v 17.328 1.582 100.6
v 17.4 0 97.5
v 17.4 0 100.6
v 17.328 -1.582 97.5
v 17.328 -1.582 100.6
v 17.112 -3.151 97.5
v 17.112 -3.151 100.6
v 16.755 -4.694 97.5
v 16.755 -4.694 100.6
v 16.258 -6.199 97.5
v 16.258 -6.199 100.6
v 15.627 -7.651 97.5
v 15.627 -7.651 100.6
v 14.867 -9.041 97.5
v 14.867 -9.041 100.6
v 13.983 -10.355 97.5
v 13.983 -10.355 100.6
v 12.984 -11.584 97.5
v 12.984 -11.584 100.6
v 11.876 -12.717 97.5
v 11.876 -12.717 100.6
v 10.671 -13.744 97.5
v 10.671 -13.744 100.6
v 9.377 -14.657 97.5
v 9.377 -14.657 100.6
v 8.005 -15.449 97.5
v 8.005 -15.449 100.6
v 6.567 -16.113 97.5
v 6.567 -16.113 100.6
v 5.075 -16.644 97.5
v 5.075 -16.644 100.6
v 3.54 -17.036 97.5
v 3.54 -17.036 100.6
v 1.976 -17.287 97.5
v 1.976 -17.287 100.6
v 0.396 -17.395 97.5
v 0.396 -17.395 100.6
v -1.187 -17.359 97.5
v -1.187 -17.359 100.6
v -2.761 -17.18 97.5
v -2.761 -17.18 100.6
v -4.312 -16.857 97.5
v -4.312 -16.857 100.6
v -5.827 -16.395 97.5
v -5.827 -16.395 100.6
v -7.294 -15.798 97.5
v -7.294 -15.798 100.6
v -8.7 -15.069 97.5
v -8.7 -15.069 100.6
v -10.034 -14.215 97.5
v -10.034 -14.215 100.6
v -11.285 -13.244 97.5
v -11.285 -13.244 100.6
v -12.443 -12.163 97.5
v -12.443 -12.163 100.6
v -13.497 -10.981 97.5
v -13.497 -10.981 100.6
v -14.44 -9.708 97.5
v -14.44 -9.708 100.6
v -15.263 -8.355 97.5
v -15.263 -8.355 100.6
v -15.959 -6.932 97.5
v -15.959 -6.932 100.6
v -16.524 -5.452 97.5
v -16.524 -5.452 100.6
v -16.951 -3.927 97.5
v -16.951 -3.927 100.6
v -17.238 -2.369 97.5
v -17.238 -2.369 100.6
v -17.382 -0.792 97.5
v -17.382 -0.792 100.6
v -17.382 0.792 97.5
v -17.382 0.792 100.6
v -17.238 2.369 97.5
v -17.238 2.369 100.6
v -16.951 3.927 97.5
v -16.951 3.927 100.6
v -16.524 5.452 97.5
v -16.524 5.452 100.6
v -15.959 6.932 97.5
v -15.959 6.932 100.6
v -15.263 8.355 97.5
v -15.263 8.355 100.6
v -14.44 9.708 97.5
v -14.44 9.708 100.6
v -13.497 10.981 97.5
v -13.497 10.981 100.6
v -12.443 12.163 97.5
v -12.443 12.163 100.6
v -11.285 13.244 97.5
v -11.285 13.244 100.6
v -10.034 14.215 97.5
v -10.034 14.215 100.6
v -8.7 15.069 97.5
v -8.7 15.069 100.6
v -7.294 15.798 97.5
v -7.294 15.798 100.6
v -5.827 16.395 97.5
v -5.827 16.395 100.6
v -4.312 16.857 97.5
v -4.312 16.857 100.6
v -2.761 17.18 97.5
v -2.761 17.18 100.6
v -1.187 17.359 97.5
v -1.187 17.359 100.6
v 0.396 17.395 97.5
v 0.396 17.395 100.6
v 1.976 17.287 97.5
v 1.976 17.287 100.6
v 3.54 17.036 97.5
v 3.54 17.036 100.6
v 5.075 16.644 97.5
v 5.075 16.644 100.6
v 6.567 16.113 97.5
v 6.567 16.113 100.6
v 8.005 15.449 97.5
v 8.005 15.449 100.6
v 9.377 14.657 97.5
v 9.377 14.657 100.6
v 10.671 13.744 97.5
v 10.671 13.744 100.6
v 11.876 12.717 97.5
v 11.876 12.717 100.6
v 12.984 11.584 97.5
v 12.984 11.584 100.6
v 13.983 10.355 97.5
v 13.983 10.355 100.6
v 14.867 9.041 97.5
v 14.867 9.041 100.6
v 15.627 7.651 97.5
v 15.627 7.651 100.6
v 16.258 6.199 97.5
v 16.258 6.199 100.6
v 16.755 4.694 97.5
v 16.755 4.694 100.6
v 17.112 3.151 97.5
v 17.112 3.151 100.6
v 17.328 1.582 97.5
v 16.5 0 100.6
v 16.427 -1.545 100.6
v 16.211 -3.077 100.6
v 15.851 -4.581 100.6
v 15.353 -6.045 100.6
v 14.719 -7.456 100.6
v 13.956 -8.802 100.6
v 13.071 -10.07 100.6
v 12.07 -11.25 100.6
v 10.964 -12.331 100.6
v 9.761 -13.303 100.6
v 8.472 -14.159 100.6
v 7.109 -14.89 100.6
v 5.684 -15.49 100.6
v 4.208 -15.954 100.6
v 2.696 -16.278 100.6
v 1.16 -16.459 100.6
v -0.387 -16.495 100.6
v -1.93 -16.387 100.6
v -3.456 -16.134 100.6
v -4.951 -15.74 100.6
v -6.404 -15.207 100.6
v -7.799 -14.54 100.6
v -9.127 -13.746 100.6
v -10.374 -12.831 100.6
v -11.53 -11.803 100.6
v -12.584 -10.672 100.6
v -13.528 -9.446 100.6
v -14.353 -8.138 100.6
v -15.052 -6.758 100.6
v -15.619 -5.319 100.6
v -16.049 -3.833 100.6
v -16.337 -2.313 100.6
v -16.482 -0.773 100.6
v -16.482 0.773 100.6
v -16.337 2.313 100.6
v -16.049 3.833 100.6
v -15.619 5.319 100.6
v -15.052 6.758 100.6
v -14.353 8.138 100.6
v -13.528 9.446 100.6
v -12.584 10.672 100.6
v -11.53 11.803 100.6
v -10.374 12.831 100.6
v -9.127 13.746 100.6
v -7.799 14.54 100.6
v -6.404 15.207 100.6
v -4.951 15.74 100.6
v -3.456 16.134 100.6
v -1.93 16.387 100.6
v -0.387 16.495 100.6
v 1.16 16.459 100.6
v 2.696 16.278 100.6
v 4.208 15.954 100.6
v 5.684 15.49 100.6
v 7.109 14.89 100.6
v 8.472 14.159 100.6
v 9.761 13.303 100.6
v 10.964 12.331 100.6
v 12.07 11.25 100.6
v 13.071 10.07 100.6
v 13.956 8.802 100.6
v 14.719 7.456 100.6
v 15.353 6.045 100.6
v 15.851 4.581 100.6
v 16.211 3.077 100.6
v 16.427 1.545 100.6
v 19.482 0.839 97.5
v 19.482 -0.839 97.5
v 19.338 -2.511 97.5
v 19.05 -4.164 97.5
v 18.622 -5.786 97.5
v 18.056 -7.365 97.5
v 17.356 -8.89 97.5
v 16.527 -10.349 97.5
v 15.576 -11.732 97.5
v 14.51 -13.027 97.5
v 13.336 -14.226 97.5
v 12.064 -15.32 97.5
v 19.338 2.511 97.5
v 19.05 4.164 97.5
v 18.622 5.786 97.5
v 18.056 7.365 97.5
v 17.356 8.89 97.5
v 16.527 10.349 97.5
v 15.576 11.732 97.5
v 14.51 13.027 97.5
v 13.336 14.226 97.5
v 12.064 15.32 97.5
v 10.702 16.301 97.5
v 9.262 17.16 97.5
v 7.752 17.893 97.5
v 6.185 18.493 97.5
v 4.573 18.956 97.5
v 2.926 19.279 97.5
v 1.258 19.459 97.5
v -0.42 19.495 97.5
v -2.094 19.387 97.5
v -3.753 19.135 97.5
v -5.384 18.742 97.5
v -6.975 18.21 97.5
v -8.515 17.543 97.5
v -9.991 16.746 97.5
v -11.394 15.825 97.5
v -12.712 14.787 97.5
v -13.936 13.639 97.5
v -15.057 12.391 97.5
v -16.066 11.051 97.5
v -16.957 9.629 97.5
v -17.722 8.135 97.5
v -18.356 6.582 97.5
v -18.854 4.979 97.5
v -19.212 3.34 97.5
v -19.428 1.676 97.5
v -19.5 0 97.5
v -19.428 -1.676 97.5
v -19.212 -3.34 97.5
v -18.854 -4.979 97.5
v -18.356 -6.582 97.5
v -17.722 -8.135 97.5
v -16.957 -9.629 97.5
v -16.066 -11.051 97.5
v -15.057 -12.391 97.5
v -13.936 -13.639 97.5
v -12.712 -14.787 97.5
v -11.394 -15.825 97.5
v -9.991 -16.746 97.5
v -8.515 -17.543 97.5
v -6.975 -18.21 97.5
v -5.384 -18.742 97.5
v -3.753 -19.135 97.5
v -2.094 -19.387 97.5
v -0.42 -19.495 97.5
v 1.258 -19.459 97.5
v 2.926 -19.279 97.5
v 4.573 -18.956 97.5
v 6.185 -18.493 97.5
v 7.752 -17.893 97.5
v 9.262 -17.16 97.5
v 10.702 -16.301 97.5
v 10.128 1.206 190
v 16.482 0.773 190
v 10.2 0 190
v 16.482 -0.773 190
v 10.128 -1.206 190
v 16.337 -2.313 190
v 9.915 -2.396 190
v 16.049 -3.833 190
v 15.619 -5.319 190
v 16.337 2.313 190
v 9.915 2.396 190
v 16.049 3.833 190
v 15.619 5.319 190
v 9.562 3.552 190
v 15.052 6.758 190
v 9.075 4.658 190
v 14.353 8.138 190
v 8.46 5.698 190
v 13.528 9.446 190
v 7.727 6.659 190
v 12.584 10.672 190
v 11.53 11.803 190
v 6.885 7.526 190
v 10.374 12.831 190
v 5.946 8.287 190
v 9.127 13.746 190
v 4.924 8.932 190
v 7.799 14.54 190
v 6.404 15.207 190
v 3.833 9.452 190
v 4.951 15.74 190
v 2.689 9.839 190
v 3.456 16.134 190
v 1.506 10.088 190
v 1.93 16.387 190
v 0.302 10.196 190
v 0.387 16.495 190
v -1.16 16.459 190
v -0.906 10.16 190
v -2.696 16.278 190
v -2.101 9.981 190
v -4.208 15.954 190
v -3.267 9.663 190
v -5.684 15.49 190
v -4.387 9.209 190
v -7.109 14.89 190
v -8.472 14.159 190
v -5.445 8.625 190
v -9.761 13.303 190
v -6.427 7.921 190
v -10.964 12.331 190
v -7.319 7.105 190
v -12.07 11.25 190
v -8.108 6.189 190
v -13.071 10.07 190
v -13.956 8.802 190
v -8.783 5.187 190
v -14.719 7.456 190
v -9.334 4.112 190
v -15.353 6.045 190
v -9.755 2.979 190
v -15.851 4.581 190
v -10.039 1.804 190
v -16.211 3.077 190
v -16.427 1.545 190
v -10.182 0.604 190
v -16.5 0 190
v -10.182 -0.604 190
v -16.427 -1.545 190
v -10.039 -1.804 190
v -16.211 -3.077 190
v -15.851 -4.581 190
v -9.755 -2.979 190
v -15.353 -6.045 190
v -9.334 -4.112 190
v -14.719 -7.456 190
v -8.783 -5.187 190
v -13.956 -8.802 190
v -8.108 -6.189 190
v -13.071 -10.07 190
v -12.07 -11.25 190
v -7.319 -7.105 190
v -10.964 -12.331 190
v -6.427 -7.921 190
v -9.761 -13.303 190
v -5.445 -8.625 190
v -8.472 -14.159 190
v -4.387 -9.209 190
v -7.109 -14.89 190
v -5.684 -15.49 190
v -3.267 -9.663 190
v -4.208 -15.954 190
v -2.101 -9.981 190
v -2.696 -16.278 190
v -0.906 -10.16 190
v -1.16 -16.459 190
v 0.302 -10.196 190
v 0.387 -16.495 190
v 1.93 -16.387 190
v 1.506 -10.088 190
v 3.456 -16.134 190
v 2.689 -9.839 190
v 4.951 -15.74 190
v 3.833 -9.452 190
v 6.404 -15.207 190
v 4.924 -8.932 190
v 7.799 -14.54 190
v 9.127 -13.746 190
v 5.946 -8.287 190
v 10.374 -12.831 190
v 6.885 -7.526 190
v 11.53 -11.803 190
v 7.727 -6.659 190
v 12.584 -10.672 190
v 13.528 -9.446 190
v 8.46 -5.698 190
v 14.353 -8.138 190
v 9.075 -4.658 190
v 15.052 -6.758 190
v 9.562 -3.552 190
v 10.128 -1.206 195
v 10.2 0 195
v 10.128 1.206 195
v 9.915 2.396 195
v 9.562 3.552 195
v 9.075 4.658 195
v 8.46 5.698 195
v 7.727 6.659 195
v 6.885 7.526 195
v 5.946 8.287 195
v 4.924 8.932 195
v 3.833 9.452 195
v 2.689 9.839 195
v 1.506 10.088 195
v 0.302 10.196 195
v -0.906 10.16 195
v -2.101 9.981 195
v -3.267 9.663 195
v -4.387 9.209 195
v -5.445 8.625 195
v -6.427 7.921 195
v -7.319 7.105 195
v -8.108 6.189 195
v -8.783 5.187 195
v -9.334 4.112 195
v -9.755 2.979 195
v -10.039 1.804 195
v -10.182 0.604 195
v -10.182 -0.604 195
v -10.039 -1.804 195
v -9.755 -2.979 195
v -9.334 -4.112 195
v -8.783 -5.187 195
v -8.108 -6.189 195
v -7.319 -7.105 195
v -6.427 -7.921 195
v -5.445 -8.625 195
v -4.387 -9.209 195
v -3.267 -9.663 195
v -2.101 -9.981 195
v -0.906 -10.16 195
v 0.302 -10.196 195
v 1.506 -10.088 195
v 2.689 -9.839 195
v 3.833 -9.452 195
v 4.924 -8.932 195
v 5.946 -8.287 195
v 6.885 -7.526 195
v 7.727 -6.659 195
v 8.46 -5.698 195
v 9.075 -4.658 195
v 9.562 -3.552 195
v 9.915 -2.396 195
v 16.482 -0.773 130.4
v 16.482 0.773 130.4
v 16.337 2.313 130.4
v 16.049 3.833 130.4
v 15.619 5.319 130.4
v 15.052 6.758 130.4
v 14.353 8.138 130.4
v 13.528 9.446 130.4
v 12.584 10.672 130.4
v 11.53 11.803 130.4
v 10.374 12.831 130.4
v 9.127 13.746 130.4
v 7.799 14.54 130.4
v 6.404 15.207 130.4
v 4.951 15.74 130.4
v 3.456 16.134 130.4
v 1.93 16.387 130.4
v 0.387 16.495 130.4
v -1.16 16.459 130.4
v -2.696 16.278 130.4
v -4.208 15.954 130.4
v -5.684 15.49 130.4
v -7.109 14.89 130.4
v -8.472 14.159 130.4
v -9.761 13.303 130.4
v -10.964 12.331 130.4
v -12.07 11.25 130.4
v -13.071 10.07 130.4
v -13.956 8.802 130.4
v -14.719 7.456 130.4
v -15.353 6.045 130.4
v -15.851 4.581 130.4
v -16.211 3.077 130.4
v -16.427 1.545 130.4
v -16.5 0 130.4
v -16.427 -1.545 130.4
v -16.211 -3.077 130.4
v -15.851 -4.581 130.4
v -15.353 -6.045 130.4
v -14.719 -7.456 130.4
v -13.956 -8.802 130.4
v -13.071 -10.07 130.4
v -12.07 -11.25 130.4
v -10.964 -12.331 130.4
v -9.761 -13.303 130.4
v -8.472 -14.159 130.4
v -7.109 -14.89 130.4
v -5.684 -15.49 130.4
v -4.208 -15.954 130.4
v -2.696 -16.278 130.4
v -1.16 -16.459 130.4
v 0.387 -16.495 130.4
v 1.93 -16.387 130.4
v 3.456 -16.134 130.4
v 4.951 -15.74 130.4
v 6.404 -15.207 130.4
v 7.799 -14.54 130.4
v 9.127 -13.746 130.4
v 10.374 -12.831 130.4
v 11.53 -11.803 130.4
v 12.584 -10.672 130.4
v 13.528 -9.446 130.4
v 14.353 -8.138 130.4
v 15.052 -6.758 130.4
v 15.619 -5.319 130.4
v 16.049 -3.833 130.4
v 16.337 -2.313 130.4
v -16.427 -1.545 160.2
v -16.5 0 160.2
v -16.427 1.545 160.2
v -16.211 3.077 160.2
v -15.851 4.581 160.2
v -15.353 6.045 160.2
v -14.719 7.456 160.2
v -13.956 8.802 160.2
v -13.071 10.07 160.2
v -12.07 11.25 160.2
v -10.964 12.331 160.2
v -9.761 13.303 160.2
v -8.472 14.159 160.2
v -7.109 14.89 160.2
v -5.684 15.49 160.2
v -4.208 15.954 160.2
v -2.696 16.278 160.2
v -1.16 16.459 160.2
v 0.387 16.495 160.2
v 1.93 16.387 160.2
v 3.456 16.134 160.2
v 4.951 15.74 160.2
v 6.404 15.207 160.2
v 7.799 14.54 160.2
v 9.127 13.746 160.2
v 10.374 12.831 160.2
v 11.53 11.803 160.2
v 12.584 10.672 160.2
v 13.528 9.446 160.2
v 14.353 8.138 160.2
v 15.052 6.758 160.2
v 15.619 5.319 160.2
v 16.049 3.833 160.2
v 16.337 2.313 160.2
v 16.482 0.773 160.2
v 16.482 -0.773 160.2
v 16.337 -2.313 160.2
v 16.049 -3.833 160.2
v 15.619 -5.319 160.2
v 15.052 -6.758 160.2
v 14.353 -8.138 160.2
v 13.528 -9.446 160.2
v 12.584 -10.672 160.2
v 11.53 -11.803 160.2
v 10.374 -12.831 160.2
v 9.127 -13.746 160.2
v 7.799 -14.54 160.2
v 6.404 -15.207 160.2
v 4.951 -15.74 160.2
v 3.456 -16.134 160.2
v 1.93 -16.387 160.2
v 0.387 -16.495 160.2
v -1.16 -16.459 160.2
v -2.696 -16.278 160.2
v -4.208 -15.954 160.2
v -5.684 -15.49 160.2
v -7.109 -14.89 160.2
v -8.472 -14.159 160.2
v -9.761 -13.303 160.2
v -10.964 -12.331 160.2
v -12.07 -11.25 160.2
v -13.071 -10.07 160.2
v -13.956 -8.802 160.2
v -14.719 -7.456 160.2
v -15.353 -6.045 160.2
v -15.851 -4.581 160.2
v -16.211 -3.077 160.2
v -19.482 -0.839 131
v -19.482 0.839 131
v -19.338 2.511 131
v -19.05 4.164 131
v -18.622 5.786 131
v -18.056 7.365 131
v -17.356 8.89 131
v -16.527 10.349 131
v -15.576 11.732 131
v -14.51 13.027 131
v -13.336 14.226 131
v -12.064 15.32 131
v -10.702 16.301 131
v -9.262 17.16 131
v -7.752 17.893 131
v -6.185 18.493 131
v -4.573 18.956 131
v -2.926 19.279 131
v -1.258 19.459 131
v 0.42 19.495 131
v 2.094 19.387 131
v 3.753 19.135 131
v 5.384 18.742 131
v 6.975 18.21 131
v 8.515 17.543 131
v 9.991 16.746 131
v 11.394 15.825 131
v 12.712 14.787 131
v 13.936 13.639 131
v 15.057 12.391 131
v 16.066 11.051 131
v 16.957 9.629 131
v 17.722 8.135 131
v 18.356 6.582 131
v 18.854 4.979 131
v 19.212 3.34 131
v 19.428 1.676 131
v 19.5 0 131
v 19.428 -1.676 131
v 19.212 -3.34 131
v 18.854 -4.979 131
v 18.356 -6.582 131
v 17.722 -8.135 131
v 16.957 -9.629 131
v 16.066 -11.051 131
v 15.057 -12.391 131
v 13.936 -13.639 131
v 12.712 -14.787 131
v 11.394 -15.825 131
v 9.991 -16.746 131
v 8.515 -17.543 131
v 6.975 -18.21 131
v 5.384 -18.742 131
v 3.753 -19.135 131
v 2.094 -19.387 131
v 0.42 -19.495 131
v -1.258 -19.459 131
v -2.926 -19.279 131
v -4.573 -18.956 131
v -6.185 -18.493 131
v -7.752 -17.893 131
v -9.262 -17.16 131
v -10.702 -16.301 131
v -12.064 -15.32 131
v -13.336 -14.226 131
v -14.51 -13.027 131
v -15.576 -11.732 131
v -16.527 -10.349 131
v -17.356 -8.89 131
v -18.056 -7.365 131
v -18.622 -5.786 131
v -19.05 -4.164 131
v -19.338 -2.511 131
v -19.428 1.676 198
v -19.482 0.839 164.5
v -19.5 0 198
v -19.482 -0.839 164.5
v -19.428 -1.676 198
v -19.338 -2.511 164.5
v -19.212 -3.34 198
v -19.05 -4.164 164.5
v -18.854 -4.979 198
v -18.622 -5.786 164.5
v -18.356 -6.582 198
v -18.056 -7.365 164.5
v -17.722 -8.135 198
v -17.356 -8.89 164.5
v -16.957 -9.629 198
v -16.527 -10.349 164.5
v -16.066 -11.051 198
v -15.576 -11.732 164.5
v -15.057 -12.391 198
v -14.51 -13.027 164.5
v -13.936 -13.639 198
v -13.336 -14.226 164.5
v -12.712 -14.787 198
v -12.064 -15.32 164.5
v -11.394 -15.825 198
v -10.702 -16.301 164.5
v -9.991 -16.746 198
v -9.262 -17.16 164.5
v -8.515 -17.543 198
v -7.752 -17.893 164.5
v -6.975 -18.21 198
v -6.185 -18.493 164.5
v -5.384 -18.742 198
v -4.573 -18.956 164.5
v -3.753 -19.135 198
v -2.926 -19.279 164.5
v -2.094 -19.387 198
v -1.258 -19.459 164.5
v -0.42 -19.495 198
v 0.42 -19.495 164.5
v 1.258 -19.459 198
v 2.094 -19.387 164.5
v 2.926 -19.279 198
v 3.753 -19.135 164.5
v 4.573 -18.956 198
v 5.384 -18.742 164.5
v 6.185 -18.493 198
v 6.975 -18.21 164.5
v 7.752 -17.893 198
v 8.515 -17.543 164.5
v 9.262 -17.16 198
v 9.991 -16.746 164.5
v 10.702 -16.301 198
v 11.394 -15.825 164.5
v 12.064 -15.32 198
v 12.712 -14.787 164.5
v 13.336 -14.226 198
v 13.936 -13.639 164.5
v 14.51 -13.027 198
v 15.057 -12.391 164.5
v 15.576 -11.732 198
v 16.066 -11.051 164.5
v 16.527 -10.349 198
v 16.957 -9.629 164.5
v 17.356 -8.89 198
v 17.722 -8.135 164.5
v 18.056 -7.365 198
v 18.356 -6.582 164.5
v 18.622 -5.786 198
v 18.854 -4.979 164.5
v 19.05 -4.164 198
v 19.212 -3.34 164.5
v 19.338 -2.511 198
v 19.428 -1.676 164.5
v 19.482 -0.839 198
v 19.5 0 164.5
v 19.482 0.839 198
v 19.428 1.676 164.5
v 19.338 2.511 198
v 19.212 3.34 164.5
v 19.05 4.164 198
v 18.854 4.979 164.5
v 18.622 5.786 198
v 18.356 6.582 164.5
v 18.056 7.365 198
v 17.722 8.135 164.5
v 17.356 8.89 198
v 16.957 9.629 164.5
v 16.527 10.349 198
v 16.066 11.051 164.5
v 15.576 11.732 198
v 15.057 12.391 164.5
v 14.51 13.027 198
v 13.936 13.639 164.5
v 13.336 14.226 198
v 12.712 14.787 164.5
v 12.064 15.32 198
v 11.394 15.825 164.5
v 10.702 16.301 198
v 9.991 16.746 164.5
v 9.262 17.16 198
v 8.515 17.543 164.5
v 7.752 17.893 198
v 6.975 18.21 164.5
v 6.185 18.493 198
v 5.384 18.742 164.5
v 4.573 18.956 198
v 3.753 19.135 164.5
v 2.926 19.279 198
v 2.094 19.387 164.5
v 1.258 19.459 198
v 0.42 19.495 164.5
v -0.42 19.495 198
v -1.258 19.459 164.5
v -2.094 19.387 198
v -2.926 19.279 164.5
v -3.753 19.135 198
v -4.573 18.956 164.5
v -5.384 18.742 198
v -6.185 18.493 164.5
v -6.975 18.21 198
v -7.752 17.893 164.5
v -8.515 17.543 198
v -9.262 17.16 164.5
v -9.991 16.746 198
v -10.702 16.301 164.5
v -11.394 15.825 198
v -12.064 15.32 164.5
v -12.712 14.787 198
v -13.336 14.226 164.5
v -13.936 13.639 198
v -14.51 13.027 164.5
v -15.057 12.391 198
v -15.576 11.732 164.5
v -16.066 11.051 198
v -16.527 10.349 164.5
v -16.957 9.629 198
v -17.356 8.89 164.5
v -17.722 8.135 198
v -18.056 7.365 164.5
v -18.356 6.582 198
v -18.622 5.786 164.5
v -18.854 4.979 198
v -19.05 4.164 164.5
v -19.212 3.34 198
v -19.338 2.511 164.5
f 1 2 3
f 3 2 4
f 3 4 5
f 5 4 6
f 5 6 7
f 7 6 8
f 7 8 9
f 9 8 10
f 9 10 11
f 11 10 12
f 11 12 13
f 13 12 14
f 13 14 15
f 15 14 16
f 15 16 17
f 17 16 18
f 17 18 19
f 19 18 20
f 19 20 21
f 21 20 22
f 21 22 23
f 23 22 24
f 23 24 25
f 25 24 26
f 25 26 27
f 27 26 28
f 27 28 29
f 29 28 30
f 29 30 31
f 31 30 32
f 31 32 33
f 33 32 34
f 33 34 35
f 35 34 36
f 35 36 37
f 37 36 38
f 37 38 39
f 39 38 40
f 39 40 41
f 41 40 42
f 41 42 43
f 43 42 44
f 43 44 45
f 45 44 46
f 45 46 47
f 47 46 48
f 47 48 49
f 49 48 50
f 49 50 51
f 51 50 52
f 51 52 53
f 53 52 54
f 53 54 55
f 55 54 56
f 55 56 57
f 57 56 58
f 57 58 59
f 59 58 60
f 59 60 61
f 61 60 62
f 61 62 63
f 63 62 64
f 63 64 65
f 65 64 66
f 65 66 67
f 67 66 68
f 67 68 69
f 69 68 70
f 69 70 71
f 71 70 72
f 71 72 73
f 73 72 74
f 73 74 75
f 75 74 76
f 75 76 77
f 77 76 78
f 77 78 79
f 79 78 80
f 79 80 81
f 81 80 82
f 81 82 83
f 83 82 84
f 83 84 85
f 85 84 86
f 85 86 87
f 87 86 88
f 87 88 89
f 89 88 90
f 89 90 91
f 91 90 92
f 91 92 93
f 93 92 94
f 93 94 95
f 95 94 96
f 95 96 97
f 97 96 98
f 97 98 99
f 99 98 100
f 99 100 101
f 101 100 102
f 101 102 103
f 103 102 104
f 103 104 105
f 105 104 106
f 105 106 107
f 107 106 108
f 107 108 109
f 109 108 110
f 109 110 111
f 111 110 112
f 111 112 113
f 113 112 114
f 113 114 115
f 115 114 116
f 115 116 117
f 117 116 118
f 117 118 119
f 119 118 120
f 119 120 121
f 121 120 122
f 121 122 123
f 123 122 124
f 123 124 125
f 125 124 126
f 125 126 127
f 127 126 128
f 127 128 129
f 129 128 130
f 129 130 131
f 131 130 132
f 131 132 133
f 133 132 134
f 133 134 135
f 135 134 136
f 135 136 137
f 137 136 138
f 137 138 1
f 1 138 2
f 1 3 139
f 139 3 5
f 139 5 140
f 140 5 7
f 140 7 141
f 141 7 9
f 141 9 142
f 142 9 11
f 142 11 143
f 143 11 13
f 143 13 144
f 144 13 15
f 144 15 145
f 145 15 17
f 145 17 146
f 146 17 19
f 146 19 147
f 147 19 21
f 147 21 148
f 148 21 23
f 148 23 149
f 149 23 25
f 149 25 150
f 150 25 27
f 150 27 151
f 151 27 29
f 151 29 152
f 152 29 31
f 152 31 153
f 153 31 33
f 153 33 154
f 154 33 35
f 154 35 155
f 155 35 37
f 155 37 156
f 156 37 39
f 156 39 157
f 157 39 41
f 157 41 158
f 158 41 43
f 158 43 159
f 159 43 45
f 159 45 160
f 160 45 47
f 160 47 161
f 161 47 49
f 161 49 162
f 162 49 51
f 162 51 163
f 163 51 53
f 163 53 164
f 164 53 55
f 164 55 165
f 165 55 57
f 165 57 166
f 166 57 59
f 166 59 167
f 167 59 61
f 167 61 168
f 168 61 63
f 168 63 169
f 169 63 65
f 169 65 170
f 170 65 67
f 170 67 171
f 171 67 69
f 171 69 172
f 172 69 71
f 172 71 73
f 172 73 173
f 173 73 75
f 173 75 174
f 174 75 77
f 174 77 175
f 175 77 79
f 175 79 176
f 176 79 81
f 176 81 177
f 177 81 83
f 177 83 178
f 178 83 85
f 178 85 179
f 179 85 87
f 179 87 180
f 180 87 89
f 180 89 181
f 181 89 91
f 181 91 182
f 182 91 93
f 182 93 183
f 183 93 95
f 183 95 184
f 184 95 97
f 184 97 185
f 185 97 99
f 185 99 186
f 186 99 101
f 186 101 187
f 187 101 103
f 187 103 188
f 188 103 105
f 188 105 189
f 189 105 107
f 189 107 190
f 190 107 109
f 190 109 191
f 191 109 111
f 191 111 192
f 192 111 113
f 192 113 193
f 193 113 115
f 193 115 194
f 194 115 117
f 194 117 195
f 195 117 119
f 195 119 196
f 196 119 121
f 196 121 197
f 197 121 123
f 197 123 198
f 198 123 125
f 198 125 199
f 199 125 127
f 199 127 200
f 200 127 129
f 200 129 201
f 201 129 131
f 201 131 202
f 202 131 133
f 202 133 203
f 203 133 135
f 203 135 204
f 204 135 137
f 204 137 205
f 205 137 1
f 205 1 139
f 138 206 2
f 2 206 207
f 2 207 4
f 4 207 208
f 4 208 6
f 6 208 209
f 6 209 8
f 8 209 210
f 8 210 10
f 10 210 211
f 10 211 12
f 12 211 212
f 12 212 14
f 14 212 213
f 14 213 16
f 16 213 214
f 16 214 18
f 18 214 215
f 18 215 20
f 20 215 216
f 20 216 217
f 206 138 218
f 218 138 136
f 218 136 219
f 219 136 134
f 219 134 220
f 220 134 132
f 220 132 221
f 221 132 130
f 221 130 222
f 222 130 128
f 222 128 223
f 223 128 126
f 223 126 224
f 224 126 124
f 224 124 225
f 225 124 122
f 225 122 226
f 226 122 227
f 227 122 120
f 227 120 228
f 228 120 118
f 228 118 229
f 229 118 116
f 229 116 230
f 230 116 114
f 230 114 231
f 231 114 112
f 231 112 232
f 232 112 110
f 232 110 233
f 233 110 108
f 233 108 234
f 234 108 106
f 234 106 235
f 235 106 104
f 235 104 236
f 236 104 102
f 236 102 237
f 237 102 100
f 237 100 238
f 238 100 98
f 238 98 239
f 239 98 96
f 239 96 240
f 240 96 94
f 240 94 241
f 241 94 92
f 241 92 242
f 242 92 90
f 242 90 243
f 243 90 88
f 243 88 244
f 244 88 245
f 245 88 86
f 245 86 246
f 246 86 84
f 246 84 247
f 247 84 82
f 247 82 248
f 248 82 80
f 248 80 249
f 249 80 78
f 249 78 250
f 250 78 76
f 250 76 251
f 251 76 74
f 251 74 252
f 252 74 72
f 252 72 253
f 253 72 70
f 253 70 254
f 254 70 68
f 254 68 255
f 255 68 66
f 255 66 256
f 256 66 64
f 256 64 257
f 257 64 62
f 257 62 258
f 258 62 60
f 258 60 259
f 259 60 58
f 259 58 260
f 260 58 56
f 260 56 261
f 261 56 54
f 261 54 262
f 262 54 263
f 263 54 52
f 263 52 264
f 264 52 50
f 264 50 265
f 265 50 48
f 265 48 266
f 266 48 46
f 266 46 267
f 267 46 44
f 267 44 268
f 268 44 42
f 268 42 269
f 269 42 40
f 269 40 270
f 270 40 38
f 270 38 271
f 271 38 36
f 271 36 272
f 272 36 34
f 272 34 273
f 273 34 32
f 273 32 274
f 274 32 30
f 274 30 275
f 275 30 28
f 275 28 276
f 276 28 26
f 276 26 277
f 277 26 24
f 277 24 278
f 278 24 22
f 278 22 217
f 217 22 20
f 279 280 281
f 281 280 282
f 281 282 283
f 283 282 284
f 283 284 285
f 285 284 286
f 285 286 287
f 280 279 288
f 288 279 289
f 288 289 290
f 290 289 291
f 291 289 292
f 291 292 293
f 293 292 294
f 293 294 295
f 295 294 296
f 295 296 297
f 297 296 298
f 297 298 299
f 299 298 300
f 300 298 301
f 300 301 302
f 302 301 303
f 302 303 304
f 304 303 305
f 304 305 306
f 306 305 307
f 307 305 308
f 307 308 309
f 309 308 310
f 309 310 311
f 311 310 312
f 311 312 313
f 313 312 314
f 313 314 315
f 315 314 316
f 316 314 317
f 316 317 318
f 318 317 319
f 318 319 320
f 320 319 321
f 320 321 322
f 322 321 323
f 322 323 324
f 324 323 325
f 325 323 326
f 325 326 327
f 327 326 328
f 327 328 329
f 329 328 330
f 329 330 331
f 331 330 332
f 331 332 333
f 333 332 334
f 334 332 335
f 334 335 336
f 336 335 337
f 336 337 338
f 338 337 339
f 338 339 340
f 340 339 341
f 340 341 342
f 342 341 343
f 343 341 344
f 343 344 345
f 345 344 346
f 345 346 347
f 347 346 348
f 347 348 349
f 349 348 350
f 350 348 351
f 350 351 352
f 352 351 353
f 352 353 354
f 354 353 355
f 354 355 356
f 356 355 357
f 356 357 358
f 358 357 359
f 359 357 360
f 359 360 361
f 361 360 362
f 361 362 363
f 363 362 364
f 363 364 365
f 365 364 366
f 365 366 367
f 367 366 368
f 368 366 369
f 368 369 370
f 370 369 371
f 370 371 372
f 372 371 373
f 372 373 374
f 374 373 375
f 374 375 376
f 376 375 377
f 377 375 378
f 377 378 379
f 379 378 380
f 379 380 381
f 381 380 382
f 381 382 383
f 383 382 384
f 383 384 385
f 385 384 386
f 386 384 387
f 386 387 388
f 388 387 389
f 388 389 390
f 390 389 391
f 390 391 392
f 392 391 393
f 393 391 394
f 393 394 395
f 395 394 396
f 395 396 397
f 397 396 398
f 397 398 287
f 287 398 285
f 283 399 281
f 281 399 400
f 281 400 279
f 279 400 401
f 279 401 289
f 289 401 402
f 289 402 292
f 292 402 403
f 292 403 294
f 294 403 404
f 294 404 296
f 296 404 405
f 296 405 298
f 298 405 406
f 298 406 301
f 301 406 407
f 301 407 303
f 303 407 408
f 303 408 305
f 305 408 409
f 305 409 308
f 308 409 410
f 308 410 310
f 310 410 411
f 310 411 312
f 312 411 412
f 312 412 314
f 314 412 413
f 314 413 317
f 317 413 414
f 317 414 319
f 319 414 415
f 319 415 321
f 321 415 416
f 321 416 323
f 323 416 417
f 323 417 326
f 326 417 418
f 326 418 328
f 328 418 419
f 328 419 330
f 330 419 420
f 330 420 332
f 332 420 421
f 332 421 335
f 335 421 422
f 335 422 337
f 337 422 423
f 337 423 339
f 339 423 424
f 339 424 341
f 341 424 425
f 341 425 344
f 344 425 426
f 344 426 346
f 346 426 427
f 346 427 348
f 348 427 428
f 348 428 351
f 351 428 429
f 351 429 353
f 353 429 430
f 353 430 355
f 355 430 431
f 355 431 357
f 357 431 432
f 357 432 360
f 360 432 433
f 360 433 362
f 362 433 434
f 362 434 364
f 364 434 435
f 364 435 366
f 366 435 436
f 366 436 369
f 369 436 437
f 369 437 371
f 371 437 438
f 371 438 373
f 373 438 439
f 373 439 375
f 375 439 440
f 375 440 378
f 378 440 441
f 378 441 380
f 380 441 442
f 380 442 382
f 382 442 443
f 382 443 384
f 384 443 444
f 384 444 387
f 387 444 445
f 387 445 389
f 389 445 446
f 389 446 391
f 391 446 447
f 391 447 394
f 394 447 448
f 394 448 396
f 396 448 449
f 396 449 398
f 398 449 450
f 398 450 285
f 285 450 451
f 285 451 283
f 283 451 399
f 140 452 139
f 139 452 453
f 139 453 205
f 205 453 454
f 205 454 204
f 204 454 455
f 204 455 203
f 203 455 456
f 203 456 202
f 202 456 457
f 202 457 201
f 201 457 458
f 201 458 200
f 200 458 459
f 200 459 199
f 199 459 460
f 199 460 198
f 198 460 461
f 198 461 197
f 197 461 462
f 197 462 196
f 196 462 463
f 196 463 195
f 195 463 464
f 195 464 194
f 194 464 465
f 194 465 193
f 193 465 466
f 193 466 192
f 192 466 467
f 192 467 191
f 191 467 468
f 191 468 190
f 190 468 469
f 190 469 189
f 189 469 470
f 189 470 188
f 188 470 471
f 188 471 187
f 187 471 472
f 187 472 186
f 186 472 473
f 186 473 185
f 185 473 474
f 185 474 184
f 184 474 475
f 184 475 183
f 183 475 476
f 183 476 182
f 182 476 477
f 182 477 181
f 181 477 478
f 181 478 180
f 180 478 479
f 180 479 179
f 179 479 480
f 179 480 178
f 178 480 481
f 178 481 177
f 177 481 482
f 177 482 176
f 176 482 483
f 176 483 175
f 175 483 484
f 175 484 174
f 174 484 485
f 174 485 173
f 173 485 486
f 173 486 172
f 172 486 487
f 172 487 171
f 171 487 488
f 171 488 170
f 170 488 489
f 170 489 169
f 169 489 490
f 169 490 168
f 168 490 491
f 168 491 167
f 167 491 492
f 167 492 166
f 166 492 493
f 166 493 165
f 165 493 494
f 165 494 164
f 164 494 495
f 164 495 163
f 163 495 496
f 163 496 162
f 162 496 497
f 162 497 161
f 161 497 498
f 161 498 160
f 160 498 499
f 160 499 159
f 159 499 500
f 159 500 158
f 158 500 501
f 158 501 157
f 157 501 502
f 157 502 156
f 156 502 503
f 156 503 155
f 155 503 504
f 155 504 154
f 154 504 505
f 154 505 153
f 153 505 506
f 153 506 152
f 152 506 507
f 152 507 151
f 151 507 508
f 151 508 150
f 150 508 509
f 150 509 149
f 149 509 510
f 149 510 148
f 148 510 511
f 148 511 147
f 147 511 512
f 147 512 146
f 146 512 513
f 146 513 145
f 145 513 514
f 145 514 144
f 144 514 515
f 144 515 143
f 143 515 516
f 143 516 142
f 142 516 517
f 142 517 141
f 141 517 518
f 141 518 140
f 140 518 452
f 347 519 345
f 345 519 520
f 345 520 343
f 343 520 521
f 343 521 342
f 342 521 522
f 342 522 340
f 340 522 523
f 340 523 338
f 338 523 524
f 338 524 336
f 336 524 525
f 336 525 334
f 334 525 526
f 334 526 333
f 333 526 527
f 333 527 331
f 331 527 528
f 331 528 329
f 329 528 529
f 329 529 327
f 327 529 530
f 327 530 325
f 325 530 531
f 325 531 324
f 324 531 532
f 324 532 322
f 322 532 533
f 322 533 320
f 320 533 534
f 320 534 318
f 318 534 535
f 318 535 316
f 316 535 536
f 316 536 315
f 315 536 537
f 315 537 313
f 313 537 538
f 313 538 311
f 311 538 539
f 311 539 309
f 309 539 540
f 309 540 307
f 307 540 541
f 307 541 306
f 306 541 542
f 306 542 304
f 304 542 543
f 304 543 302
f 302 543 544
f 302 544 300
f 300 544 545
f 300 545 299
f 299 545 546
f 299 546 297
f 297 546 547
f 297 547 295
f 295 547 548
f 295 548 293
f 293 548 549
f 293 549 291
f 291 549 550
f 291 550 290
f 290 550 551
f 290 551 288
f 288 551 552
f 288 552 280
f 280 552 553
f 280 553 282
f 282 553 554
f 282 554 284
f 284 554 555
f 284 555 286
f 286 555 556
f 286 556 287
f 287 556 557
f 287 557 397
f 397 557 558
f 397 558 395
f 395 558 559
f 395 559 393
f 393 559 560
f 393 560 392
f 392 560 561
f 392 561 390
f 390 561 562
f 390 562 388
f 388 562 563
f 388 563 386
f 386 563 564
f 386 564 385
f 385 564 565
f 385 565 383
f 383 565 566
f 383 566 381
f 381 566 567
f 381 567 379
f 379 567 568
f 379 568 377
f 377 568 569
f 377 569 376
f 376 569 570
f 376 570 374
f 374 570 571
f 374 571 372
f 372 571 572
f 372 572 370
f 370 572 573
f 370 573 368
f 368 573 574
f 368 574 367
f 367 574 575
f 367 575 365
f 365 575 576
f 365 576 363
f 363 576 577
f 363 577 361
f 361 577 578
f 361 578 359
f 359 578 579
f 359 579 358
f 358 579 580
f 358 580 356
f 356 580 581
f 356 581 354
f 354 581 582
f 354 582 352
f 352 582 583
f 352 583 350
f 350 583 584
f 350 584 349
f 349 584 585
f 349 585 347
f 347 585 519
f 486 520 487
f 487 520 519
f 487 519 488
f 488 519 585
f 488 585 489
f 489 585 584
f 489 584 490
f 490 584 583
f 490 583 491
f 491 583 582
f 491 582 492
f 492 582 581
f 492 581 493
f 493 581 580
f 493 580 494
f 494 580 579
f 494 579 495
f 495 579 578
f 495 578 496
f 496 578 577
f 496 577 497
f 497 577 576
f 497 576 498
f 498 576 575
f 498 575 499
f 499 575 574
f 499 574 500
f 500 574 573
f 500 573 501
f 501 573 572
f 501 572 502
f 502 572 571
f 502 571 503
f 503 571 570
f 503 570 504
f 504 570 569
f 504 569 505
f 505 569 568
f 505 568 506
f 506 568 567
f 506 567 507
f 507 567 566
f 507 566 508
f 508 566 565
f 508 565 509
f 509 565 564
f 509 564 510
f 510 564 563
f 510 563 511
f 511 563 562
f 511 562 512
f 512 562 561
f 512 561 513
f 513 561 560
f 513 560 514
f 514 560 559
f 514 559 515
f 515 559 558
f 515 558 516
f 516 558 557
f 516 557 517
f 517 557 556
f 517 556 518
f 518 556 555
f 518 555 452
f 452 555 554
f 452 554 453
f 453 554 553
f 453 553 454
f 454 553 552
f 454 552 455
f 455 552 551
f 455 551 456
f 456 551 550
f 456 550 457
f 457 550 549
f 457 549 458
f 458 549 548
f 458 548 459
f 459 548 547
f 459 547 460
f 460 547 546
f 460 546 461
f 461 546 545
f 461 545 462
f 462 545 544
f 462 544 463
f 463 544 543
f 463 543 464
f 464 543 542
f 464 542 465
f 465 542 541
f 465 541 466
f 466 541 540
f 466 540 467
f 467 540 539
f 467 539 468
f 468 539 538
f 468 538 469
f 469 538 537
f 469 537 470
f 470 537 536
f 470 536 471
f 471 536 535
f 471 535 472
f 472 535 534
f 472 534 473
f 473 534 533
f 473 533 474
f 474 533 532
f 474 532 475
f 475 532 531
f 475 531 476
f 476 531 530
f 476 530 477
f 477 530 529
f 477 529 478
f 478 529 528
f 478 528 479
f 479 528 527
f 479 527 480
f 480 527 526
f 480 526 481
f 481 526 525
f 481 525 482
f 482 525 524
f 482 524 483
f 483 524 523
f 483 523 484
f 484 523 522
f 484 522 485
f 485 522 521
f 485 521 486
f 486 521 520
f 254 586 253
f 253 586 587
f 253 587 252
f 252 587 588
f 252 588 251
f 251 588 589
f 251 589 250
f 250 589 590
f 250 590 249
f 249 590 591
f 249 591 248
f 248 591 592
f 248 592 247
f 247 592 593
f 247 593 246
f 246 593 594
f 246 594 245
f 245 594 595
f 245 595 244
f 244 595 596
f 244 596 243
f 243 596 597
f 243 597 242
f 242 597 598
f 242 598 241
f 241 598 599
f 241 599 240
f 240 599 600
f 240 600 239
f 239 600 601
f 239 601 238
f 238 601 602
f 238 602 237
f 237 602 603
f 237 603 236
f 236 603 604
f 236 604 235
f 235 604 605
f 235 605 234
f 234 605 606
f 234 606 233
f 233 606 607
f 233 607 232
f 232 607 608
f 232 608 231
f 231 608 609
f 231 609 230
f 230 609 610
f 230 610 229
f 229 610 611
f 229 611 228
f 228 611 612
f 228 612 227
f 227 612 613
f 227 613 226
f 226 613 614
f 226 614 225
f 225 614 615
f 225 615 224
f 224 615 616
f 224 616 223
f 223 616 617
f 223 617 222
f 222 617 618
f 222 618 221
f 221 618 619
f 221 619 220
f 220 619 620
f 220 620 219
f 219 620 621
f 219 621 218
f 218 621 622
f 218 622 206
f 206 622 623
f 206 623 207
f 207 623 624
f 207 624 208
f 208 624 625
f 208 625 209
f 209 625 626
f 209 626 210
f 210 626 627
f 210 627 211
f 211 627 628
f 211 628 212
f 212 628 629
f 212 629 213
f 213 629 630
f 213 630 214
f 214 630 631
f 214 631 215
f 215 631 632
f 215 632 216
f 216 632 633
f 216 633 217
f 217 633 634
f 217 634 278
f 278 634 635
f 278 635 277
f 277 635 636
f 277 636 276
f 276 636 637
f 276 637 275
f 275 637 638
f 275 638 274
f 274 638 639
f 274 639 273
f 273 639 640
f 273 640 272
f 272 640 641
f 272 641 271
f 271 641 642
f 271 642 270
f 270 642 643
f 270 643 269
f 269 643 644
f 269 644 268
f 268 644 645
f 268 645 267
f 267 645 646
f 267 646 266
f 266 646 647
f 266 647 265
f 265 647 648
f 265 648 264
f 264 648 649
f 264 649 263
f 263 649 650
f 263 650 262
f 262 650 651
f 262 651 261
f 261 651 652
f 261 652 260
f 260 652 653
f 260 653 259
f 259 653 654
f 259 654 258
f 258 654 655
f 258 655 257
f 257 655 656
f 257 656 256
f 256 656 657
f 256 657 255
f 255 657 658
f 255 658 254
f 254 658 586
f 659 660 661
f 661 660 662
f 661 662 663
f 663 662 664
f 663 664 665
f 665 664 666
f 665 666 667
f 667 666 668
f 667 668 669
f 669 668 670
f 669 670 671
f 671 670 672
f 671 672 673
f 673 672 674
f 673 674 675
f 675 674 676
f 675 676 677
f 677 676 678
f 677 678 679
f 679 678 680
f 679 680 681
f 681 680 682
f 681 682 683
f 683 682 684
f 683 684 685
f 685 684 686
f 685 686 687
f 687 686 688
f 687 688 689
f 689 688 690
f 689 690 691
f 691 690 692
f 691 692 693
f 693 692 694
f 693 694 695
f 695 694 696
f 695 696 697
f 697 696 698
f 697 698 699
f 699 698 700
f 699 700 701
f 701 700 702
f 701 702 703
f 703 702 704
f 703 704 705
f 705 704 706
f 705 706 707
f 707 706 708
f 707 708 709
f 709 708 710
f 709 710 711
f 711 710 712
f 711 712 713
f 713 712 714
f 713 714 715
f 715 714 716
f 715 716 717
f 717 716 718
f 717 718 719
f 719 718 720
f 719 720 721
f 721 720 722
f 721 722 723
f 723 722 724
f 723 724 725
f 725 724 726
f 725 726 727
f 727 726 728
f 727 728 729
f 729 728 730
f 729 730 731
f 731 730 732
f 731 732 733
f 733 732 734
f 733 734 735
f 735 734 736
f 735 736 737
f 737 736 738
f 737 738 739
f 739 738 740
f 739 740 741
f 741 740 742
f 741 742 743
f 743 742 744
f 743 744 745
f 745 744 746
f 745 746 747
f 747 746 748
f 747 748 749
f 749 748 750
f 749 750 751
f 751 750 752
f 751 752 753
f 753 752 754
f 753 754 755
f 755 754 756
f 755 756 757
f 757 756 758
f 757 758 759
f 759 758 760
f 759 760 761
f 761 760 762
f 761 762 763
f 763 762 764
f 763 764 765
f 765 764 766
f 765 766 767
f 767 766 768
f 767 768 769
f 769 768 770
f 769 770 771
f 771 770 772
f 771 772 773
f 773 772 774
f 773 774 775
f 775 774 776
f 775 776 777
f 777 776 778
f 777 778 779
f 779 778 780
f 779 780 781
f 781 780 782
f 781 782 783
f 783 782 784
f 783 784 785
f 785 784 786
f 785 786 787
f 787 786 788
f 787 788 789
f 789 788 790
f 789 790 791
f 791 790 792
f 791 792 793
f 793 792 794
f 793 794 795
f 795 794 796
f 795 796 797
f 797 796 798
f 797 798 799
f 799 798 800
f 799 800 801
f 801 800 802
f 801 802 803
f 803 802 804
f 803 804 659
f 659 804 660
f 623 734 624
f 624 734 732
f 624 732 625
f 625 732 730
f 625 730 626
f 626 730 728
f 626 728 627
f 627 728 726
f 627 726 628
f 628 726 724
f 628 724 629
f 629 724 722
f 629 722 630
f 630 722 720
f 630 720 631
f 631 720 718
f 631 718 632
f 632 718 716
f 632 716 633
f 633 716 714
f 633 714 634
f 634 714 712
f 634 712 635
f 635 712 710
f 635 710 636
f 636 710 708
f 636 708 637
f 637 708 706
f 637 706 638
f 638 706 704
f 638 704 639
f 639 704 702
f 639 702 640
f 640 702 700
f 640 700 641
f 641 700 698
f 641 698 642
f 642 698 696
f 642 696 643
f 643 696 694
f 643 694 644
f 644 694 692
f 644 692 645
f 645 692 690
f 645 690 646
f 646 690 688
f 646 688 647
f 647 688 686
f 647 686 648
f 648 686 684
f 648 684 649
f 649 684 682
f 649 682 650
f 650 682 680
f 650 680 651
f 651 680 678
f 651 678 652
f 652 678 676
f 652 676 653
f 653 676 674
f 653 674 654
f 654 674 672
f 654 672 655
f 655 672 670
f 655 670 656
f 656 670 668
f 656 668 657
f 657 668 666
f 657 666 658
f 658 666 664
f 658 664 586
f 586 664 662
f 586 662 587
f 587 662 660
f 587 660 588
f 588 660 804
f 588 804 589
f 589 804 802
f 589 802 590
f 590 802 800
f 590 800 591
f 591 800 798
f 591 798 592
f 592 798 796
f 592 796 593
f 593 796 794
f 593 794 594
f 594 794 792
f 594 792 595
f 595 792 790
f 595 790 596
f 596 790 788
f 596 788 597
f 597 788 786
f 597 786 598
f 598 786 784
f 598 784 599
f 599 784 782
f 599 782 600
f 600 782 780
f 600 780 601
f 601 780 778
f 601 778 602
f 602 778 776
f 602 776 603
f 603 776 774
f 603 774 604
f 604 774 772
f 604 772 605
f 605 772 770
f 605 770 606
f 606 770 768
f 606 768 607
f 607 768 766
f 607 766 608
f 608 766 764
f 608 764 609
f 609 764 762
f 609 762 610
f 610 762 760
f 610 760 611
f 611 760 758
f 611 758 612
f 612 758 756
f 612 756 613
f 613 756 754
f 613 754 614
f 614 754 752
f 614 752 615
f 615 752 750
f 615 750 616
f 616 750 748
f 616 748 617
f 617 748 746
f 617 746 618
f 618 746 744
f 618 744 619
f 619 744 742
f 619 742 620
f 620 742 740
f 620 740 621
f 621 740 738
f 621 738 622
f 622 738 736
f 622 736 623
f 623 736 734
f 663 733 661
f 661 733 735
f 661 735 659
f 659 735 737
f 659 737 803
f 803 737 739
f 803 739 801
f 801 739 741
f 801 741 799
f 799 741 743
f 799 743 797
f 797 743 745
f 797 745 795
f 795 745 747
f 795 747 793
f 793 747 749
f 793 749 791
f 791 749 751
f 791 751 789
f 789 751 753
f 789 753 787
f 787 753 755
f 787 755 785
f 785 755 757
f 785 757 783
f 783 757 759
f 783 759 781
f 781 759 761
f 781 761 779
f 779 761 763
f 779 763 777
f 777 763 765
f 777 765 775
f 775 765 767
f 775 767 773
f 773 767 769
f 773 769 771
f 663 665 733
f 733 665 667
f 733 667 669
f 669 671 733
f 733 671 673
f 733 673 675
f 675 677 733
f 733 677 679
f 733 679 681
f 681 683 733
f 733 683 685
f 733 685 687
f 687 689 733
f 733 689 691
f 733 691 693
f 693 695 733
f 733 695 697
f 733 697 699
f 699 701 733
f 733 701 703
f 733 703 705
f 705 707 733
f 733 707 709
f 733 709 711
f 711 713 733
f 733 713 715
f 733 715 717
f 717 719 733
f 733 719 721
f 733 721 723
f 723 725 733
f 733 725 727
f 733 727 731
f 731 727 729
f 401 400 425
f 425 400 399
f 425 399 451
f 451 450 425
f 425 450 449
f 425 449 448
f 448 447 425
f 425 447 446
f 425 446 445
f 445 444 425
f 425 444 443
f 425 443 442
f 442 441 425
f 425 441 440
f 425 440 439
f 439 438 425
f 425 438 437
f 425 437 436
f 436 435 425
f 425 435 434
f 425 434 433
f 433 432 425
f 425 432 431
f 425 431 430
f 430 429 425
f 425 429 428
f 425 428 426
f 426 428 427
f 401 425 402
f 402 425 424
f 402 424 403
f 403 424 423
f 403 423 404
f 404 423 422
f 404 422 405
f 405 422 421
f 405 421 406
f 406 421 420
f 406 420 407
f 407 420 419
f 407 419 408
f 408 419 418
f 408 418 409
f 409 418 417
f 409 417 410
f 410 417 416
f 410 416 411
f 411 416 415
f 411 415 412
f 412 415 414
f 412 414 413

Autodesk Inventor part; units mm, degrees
ref_plane "YZ Plane" through (0, 0, 0) normal (1, 0, 0) x (0, 1, 0)
ref_plane "XZ Plane" through (0, 0, 0) normal (0, 1, 0) x (-1, 0, 0)
ref_plane "XY Plane" through (0, 0, 0) normal (0, 0, 1) x (1, 0, 0)
sketch "Sketch1" plane through (0, 0, 0) normal (0, 0, 1) x (1, 0, 0)
  circle A0 centre (0, 0) radius 16.5
  circle A1 centre (0, 0) radius 19.5
  dimension "d0" = 33
  dimension "d1" = 39
extrude "Extrusion1" add sketch "Sketch1" along normal blind 195
ref_plane "Work Plane1" through (0, 0, 97.5) normal (0, 0, 1) x (1, 0, 0)
sketch "Sketch2" plane through (0, 0, 195) normal (0, 0, 1) x (1, 0, 0)
  circle A0 centre (0, 0) radius 19.5 projected
extrude "Extrusion2" add sketch "Sketch2" along normal blind 3
mirror "Mirror1" about plane through (0, 0, 97.5) normal (0, 0, 1) of "Extrusion2"
sketch "Sketch5" plane through (0, 0, -3) normal (0, 0, -1) x (-1, 0, 0)
  circle A0 centre (0, 0) radius 11
  dimension "d12" = 22
extrude "Extrusion5" cut sketch "Sketch5" against normal blind 10
sketch "Sketch6" plane through (0, 0, 0) normal (1, 0, 0) x (0, 1, 0)
  line L0 (11, -3) -> (-11, -3) projected
  line L1 (-11, 0) -> (11, 0) projected
  line L2 (11, 0) -> (-11, 0)
  line L3 (-11, 0) -> (-11, -3)
  line L4 (-11, -3) -> (11, -3)
  line L5 (11, -3) -> (11, 0)
  point P0 (0, 0)
extrude "Extrusion6" cut sketch "Sketch6" along normal through all
sketch "Sketch7" plane through (0, 0, 0) normal (1, 0, 0) x (0, 1, 0)
  line L0 (-16.5, 0) -> (16.5, 0) projected
  line L1 (16.5, 0) -> (-16, 0)
  line L2 (-16, 0) -> (-16, 7)
  line L3 (-16, 7) -> (16.5, 7)
  line L4 (16.5, 7) -> (16.5, 0)
  point P0 (0, 0)
  point P1 (-11, 0)
  point P2 (11, 0)
  dimension "d17" = 7
extrude "Extrusion7" cut sketch "Sketch7" along normal through all
sketch "Sketch8" plane through (0, 0, 195) normal (0, 0, -1) x (-1, 0, 0)
  circle A0 centre (0, 0) radius 10.2
  circle A1 centre (0, 0) radius 19.5
  circle A2 centre (0, 0) radius 19.5 projected
  dimension "d20" = 20.4
extrude "Extrusion8" add sketch "Sketch8" along normal blind 5
sketch "Sketch9" plane through (0, 0, 97.5) normal (0, 0, 1) x (1, 0, 0)
  circle A0 centre (0, 0) radius 19.5 projected
extrude "Extrusion9" cut sketch "Sketch9" against normal through all
sketch "Sketch10" plane through (0, 0, 97.5) normal (0, 0, -1) x (-1, 0, 0)
  circle A0 centre (0, 0) radius 16.5
  circle A1 centre (0, 0) radius 17.4
  dimension "d25" = 33
  dimension "d26" = 0.9
extrude "Extrusion10" cut sketch "Sketch10" against normal blind 3.1
properties part number "Magazine_Tube_1_3DPrint"
